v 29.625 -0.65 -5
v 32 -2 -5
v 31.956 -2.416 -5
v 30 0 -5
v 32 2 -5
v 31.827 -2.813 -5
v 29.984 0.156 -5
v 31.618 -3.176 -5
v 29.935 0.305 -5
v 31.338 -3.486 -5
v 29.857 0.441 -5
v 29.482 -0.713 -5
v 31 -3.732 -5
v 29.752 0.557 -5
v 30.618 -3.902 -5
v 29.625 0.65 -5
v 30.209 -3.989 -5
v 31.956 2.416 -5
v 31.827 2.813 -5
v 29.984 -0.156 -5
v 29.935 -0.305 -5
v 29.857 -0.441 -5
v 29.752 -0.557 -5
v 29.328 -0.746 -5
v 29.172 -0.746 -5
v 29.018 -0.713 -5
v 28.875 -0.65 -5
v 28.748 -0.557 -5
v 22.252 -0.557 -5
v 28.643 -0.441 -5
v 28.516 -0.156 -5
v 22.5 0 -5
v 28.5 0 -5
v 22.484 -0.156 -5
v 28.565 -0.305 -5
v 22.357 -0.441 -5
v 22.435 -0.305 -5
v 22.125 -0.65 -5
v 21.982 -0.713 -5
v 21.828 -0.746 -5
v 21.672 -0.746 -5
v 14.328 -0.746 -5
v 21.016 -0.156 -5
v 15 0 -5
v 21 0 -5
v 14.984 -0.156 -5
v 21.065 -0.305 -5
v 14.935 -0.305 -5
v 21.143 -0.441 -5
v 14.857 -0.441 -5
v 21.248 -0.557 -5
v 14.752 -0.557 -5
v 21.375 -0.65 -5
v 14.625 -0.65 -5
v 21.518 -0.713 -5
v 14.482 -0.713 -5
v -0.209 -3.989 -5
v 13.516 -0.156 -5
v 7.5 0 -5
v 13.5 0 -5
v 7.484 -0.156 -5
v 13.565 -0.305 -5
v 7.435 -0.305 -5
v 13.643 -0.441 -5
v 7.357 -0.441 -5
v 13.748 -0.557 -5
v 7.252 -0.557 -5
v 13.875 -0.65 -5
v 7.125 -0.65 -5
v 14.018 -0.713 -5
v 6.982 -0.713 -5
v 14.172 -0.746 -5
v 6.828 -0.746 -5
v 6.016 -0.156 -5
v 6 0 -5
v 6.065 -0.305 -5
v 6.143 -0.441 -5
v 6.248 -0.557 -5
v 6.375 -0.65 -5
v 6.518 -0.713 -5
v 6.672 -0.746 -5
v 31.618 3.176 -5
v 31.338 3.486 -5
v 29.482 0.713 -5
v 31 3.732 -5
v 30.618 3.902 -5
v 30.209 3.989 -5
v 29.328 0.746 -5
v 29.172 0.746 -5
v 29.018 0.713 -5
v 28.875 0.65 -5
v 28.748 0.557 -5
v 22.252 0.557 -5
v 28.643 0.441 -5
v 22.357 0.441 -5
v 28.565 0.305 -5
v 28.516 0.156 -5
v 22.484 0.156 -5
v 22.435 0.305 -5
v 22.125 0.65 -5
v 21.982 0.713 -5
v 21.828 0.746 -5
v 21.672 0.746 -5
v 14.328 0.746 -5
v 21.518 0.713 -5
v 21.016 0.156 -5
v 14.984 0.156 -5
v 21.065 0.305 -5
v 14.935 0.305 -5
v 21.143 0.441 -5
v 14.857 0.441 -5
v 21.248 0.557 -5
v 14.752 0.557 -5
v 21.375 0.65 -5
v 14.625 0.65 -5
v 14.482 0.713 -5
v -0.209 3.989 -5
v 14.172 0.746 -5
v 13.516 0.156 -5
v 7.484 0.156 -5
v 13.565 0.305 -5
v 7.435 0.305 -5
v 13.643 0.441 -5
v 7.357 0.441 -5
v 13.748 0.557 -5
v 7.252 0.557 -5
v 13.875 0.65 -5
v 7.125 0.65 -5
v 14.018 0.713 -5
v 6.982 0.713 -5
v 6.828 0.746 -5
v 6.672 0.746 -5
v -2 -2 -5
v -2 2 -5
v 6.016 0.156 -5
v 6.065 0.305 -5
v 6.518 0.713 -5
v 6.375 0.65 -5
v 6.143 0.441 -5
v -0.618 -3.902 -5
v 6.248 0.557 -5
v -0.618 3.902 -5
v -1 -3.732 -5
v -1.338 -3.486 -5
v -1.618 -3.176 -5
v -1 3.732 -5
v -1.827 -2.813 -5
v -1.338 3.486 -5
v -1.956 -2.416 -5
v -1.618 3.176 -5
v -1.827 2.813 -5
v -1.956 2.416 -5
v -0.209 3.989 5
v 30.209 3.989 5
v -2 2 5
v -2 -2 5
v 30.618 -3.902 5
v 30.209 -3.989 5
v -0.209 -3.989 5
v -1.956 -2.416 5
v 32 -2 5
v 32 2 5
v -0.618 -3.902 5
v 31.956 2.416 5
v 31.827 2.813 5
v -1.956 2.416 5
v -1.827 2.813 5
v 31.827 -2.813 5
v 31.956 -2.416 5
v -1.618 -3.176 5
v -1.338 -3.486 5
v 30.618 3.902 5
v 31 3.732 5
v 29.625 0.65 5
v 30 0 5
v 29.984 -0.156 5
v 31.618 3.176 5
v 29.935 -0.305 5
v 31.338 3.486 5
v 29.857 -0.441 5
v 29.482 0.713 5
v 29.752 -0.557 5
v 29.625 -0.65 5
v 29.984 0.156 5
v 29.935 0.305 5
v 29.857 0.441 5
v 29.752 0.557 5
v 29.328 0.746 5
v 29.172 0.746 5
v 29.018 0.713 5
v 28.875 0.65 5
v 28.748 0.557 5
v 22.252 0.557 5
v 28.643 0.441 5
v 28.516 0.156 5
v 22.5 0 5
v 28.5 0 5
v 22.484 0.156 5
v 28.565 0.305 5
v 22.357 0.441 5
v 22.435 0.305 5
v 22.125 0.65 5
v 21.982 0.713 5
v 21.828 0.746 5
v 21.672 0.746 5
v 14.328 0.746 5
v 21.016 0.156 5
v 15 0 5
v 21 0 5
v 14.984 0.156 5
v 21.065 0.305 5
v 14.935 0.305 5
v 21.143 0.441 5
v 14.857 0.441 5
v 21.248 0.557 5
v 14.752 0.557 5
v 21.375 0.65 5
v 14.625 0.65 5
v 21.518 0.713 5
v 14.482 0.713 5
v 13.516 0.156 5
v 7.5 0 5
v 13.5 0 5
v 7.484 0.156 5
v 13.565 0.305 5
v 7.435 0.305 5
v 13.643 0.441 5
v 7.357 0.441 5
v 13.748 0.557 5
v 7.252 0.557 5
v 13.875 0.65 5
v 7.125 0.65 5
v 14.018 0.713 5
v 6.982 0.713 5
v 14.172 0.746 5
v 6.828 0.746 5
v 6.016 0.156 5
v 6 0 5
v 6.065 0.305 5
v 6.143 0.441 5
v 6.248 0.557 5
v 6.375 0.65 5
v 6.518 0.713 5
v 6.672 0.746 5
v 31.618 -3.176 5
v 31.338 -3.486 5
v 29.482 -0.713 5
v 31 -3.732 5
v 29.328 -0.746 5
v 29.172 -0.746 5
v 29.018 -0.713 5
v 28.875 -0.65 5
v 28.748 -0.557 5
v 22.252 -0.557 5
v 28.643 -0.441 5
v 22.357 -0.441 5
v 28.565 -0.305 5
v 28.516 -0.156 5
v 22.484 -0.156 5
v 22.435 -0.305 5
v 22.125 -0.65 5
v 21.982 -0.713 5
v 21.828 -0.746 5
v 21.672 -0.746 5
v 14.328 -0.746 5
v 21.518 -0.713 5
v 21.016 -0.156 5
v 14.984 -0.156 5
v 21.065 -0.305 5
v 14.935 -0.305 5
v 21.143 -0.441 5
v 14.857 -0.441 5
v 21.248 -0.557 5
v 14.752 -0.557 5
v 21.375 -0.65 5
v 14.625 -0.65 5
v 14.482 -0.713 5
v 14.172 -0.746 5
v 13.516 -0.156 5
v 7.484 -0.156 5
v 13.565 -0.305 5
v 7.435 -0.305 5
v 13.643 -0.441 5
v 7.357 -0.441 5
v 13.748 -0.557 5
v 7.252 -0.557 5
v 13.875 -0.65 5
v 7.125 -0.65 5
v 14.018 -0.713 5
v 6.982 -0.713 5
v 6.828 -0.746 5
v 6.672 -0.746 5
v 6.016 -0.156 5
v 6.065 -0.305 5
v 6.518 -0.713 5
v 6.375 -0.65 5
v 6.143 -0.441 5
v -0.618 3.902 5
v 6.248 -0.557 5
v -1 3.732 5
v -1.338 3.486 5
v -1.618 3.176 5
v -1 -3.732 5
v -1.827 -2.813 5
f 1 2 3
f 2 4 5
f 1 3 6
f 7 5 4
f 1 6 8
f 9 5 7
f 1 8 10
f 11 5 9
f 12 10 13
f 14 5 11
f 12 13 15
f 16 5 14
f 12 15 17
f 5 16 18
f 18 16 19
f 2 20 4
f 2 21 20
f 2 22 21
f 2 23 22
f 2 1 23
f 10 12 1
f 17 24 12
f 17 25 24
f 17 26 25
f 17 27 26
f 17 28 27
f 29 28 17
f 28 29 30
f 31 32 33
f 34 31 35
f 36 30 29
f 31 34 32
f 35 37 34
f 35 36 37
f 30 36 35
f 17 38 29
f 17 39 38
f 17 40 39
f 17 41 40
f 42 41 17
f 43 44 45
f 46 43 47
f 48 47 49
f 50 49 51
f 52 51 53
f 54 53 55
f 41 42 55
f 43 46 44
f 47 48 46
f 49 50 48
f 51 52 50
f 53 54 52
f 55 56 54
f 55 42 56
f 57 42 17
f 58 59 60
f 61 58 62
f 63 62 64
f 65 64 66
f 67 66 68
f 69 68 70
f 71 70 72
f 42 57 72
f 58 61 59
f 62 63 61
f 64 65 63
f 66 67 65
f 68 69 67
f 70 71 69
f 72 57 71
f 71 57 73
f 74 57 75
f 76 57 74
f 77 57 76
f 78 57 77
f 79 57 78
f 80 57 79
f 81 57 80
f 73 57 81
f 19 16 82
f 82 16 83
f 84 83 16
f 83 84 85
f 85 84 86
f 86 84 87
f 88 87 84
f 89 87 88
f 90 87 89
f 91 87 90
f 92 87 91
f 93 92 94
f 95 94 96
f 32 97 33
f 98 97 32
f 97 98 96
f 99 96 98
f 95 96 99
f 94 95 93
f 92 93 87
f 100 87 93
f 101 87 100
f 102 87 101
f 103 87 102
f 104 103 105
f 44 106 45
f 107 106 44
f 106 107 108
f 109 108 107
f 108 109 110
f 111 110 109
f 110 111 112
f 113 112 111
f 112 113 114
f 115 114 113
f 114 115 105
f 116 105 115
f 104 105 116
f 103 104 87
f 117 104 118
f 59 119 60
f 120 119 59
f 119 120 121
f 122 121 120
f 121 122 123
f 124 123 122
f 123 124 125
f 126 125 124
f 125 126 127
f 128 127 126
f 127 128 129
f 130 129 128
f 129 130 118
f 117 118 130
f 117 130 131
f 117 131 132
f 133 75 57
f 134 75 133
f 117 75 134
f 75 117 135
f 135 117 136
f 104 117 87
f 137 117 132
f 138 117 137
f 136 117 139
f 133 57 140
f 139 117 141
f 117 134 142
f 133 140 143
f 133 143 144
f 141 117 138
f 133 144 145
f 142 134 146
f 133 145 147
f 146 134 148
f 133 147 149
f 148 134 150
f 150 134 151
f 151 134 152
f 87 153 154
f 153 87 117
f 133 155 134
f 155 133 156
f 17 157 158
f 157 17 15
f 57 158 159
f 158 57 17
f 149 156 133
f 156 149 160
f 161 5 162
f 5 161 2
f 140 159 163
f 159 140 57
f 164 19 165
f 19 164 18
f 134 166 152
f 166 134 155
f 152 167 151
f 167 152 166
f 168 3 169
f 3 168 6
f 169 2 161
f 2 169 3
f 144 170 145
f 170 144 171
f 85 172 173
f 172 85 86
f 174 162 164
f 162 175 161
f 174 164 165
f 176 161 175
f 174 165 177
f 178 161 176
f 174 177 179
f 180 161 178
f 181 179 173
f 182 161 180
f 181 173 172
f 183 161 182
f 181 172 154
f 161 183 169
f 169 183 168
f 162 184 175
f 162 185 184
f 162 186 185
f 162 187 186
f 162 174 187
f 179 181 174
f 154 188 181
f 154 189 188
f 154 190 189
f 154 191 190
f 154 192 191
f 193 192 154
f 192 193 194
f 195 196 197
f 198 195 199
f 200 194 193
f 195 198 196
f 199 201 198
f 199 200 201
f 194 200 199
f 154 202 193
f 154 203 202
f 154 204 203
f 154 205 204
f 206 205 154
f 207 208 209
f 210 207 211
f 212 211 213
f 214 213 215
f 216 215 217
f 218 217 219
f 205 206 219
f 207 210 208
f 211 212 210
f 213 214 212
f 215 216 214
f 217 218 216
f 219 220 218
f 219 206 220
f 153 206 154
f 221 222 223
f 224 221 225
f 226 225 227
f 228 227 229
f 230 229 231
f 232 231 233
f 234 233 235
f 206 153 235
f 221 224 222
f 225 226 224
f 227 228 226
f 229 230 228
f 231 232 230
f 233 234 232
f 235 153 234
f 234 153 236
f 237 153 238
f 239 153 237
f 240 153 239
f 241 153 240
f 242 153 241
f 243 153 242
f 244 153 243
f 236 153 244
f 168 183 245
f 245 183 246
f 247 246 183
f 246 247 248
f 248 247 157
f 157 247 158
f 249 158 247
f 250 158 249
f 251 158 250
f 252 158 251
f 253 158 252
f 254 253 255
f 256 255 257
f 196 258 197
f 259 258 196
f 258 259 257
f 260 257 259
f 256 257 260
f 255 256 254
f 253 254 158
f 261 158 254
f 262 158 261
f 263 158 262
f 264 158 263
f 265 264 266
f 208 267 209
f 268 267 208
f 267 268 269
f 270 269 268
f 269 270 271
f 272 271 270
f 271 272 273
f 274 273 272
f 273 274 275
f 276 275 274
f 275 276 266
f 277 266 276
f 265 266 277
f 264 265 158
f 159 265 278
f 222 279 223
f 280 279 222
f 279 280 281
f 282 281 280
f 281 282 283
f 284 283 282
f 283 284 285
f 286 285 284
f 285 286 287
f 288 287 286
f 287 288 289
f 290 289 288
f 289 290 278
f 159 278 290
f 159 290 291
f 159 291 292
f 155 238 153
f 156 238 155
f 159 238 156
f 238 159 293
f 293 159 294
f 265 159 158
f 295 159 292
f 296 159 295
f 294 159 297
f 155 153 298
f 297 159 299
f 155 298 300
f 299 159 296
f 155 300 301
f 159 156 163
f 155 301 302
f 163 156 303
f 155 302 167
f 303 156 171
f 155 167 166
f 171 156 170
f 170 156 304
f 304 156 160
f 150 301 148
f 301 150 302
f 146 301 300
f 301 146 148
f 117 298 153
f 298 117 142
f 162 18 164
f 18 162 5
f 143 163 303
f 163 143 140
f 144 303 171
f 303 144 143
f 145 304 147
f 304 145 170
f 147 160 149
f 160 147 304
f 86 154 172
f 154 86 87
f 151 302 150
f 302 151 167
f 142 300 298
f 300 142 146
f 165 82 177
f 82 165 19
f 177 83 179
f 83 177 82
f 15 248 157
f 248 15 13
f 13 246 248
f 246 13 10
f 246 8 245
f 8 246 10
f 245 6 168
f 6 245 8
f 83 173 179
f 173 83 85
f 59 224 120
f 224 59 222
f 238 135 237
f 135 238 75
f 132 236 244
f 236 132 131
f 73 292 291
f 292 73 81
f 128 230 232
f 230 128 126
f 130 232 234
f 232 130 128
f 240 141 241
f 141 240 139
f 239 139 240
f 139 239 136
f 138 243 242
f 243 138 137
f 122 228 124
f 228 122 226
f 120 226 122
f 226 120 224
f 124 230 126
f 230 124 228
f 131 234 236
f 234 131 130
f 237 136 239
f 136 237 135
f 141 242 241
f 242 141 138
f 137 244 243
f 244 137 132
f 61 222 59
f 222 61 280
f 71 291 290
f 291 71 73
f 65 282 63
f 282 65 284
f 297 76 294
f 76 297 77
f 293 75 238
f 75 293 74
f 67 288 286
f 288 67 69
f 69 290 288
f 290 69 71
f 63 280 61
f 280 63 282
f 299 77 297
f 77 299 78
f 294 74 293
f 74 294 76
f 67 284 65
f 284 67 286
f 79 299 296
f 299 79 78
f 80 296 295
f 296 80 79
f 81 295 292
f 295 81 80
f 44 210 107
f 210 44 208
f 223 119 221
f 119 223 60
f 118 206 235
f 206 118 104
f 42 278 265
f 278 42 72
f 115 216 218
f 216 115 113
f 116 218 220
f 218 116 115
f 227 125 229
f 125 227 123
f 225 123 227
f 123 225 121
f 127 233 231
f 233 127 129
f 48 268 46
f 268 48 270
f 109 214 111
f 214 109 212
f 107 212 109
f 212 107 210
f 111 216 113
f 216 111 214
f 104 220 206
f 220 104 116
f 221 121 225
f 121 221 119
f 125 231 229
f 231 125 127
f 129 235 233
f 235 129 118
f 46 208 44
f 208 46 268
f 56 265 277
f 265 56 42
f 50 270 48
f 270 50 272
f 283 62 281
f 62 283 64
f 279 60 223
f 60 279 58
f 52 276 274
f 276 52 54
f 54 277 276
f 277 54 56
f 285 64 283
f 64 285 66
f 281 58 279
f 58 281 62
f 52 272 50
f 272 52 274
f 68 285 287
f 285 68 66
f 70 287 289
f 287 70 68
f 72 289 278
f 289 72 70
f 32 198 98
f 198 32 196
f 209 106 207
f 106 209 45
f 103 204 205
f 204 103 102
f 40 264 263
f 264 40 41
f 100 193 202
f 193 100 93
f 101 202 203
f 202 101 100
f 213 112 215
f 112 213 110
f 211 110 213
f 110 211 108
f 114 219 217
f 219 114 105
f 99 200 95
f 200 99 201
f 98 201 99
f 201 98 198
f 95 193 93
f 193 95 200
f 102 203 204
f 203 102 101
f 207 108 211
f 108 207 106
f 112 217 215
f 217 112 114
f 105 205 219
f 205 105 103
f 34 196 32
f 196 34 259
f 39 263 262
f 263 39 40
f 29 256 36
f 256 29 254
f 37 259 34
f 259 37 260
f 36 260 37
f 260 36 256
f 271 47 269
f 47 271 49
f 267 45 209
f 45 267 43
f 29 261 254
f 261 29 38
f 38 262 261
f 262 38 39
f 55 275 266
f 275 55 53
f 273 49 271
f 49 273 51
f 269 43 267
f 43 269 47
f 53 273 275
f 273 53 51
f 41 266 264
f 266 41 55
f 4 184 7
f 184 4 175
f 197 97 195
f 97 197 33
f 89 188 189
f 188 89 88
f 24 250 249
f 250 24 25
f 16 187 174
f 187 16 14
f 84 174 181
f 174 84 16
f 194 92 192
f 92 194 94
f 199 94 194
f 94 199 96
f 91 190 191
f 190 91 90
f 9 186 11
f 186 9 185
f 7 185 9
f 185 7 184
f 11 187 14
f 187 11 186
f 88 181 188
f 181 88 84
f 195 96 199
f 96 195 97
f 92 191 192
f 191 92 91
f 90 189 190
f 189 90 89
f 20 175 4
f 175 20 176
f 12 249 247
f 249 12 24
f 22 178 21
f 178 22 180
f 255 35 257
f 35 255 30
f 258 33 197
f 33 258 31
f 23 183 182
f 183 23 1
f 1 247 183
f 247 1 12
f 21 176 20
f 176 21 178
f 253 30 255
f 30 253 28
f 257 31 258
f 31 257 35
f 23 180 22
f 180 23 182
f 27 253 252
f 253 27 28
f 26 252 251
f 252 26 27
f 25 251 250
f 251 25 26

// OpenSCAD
$fn=30;
height=10;
radius=2;
difference(){
    hull(){
        translate([0,-2,0])cylinder(r=radius,h=height, center=true);
        translate([30,2,0])cylinder(r=radius,h=height, center=true);
        translate([0,2,0])cylinder(r=radius,h=height, center=true);
        translate([30,-2,0])cylinder(r=radius,h=height, center=true);
  }
    translate([6.75,0,0])cylinder(d=radius/1.333333333,h=height*10, center=true);
    translate([14.25,0,0])cylinder(d=radius/1.333333333,h=height*10, center=true);
    translate([21.75,0,0])cylinder(d=radius/1.333333333,h=height*10, center=true);
    translate([29.25,0,0])cylinder(d=radius/1.333333333,h=height*10, center=true);
}
